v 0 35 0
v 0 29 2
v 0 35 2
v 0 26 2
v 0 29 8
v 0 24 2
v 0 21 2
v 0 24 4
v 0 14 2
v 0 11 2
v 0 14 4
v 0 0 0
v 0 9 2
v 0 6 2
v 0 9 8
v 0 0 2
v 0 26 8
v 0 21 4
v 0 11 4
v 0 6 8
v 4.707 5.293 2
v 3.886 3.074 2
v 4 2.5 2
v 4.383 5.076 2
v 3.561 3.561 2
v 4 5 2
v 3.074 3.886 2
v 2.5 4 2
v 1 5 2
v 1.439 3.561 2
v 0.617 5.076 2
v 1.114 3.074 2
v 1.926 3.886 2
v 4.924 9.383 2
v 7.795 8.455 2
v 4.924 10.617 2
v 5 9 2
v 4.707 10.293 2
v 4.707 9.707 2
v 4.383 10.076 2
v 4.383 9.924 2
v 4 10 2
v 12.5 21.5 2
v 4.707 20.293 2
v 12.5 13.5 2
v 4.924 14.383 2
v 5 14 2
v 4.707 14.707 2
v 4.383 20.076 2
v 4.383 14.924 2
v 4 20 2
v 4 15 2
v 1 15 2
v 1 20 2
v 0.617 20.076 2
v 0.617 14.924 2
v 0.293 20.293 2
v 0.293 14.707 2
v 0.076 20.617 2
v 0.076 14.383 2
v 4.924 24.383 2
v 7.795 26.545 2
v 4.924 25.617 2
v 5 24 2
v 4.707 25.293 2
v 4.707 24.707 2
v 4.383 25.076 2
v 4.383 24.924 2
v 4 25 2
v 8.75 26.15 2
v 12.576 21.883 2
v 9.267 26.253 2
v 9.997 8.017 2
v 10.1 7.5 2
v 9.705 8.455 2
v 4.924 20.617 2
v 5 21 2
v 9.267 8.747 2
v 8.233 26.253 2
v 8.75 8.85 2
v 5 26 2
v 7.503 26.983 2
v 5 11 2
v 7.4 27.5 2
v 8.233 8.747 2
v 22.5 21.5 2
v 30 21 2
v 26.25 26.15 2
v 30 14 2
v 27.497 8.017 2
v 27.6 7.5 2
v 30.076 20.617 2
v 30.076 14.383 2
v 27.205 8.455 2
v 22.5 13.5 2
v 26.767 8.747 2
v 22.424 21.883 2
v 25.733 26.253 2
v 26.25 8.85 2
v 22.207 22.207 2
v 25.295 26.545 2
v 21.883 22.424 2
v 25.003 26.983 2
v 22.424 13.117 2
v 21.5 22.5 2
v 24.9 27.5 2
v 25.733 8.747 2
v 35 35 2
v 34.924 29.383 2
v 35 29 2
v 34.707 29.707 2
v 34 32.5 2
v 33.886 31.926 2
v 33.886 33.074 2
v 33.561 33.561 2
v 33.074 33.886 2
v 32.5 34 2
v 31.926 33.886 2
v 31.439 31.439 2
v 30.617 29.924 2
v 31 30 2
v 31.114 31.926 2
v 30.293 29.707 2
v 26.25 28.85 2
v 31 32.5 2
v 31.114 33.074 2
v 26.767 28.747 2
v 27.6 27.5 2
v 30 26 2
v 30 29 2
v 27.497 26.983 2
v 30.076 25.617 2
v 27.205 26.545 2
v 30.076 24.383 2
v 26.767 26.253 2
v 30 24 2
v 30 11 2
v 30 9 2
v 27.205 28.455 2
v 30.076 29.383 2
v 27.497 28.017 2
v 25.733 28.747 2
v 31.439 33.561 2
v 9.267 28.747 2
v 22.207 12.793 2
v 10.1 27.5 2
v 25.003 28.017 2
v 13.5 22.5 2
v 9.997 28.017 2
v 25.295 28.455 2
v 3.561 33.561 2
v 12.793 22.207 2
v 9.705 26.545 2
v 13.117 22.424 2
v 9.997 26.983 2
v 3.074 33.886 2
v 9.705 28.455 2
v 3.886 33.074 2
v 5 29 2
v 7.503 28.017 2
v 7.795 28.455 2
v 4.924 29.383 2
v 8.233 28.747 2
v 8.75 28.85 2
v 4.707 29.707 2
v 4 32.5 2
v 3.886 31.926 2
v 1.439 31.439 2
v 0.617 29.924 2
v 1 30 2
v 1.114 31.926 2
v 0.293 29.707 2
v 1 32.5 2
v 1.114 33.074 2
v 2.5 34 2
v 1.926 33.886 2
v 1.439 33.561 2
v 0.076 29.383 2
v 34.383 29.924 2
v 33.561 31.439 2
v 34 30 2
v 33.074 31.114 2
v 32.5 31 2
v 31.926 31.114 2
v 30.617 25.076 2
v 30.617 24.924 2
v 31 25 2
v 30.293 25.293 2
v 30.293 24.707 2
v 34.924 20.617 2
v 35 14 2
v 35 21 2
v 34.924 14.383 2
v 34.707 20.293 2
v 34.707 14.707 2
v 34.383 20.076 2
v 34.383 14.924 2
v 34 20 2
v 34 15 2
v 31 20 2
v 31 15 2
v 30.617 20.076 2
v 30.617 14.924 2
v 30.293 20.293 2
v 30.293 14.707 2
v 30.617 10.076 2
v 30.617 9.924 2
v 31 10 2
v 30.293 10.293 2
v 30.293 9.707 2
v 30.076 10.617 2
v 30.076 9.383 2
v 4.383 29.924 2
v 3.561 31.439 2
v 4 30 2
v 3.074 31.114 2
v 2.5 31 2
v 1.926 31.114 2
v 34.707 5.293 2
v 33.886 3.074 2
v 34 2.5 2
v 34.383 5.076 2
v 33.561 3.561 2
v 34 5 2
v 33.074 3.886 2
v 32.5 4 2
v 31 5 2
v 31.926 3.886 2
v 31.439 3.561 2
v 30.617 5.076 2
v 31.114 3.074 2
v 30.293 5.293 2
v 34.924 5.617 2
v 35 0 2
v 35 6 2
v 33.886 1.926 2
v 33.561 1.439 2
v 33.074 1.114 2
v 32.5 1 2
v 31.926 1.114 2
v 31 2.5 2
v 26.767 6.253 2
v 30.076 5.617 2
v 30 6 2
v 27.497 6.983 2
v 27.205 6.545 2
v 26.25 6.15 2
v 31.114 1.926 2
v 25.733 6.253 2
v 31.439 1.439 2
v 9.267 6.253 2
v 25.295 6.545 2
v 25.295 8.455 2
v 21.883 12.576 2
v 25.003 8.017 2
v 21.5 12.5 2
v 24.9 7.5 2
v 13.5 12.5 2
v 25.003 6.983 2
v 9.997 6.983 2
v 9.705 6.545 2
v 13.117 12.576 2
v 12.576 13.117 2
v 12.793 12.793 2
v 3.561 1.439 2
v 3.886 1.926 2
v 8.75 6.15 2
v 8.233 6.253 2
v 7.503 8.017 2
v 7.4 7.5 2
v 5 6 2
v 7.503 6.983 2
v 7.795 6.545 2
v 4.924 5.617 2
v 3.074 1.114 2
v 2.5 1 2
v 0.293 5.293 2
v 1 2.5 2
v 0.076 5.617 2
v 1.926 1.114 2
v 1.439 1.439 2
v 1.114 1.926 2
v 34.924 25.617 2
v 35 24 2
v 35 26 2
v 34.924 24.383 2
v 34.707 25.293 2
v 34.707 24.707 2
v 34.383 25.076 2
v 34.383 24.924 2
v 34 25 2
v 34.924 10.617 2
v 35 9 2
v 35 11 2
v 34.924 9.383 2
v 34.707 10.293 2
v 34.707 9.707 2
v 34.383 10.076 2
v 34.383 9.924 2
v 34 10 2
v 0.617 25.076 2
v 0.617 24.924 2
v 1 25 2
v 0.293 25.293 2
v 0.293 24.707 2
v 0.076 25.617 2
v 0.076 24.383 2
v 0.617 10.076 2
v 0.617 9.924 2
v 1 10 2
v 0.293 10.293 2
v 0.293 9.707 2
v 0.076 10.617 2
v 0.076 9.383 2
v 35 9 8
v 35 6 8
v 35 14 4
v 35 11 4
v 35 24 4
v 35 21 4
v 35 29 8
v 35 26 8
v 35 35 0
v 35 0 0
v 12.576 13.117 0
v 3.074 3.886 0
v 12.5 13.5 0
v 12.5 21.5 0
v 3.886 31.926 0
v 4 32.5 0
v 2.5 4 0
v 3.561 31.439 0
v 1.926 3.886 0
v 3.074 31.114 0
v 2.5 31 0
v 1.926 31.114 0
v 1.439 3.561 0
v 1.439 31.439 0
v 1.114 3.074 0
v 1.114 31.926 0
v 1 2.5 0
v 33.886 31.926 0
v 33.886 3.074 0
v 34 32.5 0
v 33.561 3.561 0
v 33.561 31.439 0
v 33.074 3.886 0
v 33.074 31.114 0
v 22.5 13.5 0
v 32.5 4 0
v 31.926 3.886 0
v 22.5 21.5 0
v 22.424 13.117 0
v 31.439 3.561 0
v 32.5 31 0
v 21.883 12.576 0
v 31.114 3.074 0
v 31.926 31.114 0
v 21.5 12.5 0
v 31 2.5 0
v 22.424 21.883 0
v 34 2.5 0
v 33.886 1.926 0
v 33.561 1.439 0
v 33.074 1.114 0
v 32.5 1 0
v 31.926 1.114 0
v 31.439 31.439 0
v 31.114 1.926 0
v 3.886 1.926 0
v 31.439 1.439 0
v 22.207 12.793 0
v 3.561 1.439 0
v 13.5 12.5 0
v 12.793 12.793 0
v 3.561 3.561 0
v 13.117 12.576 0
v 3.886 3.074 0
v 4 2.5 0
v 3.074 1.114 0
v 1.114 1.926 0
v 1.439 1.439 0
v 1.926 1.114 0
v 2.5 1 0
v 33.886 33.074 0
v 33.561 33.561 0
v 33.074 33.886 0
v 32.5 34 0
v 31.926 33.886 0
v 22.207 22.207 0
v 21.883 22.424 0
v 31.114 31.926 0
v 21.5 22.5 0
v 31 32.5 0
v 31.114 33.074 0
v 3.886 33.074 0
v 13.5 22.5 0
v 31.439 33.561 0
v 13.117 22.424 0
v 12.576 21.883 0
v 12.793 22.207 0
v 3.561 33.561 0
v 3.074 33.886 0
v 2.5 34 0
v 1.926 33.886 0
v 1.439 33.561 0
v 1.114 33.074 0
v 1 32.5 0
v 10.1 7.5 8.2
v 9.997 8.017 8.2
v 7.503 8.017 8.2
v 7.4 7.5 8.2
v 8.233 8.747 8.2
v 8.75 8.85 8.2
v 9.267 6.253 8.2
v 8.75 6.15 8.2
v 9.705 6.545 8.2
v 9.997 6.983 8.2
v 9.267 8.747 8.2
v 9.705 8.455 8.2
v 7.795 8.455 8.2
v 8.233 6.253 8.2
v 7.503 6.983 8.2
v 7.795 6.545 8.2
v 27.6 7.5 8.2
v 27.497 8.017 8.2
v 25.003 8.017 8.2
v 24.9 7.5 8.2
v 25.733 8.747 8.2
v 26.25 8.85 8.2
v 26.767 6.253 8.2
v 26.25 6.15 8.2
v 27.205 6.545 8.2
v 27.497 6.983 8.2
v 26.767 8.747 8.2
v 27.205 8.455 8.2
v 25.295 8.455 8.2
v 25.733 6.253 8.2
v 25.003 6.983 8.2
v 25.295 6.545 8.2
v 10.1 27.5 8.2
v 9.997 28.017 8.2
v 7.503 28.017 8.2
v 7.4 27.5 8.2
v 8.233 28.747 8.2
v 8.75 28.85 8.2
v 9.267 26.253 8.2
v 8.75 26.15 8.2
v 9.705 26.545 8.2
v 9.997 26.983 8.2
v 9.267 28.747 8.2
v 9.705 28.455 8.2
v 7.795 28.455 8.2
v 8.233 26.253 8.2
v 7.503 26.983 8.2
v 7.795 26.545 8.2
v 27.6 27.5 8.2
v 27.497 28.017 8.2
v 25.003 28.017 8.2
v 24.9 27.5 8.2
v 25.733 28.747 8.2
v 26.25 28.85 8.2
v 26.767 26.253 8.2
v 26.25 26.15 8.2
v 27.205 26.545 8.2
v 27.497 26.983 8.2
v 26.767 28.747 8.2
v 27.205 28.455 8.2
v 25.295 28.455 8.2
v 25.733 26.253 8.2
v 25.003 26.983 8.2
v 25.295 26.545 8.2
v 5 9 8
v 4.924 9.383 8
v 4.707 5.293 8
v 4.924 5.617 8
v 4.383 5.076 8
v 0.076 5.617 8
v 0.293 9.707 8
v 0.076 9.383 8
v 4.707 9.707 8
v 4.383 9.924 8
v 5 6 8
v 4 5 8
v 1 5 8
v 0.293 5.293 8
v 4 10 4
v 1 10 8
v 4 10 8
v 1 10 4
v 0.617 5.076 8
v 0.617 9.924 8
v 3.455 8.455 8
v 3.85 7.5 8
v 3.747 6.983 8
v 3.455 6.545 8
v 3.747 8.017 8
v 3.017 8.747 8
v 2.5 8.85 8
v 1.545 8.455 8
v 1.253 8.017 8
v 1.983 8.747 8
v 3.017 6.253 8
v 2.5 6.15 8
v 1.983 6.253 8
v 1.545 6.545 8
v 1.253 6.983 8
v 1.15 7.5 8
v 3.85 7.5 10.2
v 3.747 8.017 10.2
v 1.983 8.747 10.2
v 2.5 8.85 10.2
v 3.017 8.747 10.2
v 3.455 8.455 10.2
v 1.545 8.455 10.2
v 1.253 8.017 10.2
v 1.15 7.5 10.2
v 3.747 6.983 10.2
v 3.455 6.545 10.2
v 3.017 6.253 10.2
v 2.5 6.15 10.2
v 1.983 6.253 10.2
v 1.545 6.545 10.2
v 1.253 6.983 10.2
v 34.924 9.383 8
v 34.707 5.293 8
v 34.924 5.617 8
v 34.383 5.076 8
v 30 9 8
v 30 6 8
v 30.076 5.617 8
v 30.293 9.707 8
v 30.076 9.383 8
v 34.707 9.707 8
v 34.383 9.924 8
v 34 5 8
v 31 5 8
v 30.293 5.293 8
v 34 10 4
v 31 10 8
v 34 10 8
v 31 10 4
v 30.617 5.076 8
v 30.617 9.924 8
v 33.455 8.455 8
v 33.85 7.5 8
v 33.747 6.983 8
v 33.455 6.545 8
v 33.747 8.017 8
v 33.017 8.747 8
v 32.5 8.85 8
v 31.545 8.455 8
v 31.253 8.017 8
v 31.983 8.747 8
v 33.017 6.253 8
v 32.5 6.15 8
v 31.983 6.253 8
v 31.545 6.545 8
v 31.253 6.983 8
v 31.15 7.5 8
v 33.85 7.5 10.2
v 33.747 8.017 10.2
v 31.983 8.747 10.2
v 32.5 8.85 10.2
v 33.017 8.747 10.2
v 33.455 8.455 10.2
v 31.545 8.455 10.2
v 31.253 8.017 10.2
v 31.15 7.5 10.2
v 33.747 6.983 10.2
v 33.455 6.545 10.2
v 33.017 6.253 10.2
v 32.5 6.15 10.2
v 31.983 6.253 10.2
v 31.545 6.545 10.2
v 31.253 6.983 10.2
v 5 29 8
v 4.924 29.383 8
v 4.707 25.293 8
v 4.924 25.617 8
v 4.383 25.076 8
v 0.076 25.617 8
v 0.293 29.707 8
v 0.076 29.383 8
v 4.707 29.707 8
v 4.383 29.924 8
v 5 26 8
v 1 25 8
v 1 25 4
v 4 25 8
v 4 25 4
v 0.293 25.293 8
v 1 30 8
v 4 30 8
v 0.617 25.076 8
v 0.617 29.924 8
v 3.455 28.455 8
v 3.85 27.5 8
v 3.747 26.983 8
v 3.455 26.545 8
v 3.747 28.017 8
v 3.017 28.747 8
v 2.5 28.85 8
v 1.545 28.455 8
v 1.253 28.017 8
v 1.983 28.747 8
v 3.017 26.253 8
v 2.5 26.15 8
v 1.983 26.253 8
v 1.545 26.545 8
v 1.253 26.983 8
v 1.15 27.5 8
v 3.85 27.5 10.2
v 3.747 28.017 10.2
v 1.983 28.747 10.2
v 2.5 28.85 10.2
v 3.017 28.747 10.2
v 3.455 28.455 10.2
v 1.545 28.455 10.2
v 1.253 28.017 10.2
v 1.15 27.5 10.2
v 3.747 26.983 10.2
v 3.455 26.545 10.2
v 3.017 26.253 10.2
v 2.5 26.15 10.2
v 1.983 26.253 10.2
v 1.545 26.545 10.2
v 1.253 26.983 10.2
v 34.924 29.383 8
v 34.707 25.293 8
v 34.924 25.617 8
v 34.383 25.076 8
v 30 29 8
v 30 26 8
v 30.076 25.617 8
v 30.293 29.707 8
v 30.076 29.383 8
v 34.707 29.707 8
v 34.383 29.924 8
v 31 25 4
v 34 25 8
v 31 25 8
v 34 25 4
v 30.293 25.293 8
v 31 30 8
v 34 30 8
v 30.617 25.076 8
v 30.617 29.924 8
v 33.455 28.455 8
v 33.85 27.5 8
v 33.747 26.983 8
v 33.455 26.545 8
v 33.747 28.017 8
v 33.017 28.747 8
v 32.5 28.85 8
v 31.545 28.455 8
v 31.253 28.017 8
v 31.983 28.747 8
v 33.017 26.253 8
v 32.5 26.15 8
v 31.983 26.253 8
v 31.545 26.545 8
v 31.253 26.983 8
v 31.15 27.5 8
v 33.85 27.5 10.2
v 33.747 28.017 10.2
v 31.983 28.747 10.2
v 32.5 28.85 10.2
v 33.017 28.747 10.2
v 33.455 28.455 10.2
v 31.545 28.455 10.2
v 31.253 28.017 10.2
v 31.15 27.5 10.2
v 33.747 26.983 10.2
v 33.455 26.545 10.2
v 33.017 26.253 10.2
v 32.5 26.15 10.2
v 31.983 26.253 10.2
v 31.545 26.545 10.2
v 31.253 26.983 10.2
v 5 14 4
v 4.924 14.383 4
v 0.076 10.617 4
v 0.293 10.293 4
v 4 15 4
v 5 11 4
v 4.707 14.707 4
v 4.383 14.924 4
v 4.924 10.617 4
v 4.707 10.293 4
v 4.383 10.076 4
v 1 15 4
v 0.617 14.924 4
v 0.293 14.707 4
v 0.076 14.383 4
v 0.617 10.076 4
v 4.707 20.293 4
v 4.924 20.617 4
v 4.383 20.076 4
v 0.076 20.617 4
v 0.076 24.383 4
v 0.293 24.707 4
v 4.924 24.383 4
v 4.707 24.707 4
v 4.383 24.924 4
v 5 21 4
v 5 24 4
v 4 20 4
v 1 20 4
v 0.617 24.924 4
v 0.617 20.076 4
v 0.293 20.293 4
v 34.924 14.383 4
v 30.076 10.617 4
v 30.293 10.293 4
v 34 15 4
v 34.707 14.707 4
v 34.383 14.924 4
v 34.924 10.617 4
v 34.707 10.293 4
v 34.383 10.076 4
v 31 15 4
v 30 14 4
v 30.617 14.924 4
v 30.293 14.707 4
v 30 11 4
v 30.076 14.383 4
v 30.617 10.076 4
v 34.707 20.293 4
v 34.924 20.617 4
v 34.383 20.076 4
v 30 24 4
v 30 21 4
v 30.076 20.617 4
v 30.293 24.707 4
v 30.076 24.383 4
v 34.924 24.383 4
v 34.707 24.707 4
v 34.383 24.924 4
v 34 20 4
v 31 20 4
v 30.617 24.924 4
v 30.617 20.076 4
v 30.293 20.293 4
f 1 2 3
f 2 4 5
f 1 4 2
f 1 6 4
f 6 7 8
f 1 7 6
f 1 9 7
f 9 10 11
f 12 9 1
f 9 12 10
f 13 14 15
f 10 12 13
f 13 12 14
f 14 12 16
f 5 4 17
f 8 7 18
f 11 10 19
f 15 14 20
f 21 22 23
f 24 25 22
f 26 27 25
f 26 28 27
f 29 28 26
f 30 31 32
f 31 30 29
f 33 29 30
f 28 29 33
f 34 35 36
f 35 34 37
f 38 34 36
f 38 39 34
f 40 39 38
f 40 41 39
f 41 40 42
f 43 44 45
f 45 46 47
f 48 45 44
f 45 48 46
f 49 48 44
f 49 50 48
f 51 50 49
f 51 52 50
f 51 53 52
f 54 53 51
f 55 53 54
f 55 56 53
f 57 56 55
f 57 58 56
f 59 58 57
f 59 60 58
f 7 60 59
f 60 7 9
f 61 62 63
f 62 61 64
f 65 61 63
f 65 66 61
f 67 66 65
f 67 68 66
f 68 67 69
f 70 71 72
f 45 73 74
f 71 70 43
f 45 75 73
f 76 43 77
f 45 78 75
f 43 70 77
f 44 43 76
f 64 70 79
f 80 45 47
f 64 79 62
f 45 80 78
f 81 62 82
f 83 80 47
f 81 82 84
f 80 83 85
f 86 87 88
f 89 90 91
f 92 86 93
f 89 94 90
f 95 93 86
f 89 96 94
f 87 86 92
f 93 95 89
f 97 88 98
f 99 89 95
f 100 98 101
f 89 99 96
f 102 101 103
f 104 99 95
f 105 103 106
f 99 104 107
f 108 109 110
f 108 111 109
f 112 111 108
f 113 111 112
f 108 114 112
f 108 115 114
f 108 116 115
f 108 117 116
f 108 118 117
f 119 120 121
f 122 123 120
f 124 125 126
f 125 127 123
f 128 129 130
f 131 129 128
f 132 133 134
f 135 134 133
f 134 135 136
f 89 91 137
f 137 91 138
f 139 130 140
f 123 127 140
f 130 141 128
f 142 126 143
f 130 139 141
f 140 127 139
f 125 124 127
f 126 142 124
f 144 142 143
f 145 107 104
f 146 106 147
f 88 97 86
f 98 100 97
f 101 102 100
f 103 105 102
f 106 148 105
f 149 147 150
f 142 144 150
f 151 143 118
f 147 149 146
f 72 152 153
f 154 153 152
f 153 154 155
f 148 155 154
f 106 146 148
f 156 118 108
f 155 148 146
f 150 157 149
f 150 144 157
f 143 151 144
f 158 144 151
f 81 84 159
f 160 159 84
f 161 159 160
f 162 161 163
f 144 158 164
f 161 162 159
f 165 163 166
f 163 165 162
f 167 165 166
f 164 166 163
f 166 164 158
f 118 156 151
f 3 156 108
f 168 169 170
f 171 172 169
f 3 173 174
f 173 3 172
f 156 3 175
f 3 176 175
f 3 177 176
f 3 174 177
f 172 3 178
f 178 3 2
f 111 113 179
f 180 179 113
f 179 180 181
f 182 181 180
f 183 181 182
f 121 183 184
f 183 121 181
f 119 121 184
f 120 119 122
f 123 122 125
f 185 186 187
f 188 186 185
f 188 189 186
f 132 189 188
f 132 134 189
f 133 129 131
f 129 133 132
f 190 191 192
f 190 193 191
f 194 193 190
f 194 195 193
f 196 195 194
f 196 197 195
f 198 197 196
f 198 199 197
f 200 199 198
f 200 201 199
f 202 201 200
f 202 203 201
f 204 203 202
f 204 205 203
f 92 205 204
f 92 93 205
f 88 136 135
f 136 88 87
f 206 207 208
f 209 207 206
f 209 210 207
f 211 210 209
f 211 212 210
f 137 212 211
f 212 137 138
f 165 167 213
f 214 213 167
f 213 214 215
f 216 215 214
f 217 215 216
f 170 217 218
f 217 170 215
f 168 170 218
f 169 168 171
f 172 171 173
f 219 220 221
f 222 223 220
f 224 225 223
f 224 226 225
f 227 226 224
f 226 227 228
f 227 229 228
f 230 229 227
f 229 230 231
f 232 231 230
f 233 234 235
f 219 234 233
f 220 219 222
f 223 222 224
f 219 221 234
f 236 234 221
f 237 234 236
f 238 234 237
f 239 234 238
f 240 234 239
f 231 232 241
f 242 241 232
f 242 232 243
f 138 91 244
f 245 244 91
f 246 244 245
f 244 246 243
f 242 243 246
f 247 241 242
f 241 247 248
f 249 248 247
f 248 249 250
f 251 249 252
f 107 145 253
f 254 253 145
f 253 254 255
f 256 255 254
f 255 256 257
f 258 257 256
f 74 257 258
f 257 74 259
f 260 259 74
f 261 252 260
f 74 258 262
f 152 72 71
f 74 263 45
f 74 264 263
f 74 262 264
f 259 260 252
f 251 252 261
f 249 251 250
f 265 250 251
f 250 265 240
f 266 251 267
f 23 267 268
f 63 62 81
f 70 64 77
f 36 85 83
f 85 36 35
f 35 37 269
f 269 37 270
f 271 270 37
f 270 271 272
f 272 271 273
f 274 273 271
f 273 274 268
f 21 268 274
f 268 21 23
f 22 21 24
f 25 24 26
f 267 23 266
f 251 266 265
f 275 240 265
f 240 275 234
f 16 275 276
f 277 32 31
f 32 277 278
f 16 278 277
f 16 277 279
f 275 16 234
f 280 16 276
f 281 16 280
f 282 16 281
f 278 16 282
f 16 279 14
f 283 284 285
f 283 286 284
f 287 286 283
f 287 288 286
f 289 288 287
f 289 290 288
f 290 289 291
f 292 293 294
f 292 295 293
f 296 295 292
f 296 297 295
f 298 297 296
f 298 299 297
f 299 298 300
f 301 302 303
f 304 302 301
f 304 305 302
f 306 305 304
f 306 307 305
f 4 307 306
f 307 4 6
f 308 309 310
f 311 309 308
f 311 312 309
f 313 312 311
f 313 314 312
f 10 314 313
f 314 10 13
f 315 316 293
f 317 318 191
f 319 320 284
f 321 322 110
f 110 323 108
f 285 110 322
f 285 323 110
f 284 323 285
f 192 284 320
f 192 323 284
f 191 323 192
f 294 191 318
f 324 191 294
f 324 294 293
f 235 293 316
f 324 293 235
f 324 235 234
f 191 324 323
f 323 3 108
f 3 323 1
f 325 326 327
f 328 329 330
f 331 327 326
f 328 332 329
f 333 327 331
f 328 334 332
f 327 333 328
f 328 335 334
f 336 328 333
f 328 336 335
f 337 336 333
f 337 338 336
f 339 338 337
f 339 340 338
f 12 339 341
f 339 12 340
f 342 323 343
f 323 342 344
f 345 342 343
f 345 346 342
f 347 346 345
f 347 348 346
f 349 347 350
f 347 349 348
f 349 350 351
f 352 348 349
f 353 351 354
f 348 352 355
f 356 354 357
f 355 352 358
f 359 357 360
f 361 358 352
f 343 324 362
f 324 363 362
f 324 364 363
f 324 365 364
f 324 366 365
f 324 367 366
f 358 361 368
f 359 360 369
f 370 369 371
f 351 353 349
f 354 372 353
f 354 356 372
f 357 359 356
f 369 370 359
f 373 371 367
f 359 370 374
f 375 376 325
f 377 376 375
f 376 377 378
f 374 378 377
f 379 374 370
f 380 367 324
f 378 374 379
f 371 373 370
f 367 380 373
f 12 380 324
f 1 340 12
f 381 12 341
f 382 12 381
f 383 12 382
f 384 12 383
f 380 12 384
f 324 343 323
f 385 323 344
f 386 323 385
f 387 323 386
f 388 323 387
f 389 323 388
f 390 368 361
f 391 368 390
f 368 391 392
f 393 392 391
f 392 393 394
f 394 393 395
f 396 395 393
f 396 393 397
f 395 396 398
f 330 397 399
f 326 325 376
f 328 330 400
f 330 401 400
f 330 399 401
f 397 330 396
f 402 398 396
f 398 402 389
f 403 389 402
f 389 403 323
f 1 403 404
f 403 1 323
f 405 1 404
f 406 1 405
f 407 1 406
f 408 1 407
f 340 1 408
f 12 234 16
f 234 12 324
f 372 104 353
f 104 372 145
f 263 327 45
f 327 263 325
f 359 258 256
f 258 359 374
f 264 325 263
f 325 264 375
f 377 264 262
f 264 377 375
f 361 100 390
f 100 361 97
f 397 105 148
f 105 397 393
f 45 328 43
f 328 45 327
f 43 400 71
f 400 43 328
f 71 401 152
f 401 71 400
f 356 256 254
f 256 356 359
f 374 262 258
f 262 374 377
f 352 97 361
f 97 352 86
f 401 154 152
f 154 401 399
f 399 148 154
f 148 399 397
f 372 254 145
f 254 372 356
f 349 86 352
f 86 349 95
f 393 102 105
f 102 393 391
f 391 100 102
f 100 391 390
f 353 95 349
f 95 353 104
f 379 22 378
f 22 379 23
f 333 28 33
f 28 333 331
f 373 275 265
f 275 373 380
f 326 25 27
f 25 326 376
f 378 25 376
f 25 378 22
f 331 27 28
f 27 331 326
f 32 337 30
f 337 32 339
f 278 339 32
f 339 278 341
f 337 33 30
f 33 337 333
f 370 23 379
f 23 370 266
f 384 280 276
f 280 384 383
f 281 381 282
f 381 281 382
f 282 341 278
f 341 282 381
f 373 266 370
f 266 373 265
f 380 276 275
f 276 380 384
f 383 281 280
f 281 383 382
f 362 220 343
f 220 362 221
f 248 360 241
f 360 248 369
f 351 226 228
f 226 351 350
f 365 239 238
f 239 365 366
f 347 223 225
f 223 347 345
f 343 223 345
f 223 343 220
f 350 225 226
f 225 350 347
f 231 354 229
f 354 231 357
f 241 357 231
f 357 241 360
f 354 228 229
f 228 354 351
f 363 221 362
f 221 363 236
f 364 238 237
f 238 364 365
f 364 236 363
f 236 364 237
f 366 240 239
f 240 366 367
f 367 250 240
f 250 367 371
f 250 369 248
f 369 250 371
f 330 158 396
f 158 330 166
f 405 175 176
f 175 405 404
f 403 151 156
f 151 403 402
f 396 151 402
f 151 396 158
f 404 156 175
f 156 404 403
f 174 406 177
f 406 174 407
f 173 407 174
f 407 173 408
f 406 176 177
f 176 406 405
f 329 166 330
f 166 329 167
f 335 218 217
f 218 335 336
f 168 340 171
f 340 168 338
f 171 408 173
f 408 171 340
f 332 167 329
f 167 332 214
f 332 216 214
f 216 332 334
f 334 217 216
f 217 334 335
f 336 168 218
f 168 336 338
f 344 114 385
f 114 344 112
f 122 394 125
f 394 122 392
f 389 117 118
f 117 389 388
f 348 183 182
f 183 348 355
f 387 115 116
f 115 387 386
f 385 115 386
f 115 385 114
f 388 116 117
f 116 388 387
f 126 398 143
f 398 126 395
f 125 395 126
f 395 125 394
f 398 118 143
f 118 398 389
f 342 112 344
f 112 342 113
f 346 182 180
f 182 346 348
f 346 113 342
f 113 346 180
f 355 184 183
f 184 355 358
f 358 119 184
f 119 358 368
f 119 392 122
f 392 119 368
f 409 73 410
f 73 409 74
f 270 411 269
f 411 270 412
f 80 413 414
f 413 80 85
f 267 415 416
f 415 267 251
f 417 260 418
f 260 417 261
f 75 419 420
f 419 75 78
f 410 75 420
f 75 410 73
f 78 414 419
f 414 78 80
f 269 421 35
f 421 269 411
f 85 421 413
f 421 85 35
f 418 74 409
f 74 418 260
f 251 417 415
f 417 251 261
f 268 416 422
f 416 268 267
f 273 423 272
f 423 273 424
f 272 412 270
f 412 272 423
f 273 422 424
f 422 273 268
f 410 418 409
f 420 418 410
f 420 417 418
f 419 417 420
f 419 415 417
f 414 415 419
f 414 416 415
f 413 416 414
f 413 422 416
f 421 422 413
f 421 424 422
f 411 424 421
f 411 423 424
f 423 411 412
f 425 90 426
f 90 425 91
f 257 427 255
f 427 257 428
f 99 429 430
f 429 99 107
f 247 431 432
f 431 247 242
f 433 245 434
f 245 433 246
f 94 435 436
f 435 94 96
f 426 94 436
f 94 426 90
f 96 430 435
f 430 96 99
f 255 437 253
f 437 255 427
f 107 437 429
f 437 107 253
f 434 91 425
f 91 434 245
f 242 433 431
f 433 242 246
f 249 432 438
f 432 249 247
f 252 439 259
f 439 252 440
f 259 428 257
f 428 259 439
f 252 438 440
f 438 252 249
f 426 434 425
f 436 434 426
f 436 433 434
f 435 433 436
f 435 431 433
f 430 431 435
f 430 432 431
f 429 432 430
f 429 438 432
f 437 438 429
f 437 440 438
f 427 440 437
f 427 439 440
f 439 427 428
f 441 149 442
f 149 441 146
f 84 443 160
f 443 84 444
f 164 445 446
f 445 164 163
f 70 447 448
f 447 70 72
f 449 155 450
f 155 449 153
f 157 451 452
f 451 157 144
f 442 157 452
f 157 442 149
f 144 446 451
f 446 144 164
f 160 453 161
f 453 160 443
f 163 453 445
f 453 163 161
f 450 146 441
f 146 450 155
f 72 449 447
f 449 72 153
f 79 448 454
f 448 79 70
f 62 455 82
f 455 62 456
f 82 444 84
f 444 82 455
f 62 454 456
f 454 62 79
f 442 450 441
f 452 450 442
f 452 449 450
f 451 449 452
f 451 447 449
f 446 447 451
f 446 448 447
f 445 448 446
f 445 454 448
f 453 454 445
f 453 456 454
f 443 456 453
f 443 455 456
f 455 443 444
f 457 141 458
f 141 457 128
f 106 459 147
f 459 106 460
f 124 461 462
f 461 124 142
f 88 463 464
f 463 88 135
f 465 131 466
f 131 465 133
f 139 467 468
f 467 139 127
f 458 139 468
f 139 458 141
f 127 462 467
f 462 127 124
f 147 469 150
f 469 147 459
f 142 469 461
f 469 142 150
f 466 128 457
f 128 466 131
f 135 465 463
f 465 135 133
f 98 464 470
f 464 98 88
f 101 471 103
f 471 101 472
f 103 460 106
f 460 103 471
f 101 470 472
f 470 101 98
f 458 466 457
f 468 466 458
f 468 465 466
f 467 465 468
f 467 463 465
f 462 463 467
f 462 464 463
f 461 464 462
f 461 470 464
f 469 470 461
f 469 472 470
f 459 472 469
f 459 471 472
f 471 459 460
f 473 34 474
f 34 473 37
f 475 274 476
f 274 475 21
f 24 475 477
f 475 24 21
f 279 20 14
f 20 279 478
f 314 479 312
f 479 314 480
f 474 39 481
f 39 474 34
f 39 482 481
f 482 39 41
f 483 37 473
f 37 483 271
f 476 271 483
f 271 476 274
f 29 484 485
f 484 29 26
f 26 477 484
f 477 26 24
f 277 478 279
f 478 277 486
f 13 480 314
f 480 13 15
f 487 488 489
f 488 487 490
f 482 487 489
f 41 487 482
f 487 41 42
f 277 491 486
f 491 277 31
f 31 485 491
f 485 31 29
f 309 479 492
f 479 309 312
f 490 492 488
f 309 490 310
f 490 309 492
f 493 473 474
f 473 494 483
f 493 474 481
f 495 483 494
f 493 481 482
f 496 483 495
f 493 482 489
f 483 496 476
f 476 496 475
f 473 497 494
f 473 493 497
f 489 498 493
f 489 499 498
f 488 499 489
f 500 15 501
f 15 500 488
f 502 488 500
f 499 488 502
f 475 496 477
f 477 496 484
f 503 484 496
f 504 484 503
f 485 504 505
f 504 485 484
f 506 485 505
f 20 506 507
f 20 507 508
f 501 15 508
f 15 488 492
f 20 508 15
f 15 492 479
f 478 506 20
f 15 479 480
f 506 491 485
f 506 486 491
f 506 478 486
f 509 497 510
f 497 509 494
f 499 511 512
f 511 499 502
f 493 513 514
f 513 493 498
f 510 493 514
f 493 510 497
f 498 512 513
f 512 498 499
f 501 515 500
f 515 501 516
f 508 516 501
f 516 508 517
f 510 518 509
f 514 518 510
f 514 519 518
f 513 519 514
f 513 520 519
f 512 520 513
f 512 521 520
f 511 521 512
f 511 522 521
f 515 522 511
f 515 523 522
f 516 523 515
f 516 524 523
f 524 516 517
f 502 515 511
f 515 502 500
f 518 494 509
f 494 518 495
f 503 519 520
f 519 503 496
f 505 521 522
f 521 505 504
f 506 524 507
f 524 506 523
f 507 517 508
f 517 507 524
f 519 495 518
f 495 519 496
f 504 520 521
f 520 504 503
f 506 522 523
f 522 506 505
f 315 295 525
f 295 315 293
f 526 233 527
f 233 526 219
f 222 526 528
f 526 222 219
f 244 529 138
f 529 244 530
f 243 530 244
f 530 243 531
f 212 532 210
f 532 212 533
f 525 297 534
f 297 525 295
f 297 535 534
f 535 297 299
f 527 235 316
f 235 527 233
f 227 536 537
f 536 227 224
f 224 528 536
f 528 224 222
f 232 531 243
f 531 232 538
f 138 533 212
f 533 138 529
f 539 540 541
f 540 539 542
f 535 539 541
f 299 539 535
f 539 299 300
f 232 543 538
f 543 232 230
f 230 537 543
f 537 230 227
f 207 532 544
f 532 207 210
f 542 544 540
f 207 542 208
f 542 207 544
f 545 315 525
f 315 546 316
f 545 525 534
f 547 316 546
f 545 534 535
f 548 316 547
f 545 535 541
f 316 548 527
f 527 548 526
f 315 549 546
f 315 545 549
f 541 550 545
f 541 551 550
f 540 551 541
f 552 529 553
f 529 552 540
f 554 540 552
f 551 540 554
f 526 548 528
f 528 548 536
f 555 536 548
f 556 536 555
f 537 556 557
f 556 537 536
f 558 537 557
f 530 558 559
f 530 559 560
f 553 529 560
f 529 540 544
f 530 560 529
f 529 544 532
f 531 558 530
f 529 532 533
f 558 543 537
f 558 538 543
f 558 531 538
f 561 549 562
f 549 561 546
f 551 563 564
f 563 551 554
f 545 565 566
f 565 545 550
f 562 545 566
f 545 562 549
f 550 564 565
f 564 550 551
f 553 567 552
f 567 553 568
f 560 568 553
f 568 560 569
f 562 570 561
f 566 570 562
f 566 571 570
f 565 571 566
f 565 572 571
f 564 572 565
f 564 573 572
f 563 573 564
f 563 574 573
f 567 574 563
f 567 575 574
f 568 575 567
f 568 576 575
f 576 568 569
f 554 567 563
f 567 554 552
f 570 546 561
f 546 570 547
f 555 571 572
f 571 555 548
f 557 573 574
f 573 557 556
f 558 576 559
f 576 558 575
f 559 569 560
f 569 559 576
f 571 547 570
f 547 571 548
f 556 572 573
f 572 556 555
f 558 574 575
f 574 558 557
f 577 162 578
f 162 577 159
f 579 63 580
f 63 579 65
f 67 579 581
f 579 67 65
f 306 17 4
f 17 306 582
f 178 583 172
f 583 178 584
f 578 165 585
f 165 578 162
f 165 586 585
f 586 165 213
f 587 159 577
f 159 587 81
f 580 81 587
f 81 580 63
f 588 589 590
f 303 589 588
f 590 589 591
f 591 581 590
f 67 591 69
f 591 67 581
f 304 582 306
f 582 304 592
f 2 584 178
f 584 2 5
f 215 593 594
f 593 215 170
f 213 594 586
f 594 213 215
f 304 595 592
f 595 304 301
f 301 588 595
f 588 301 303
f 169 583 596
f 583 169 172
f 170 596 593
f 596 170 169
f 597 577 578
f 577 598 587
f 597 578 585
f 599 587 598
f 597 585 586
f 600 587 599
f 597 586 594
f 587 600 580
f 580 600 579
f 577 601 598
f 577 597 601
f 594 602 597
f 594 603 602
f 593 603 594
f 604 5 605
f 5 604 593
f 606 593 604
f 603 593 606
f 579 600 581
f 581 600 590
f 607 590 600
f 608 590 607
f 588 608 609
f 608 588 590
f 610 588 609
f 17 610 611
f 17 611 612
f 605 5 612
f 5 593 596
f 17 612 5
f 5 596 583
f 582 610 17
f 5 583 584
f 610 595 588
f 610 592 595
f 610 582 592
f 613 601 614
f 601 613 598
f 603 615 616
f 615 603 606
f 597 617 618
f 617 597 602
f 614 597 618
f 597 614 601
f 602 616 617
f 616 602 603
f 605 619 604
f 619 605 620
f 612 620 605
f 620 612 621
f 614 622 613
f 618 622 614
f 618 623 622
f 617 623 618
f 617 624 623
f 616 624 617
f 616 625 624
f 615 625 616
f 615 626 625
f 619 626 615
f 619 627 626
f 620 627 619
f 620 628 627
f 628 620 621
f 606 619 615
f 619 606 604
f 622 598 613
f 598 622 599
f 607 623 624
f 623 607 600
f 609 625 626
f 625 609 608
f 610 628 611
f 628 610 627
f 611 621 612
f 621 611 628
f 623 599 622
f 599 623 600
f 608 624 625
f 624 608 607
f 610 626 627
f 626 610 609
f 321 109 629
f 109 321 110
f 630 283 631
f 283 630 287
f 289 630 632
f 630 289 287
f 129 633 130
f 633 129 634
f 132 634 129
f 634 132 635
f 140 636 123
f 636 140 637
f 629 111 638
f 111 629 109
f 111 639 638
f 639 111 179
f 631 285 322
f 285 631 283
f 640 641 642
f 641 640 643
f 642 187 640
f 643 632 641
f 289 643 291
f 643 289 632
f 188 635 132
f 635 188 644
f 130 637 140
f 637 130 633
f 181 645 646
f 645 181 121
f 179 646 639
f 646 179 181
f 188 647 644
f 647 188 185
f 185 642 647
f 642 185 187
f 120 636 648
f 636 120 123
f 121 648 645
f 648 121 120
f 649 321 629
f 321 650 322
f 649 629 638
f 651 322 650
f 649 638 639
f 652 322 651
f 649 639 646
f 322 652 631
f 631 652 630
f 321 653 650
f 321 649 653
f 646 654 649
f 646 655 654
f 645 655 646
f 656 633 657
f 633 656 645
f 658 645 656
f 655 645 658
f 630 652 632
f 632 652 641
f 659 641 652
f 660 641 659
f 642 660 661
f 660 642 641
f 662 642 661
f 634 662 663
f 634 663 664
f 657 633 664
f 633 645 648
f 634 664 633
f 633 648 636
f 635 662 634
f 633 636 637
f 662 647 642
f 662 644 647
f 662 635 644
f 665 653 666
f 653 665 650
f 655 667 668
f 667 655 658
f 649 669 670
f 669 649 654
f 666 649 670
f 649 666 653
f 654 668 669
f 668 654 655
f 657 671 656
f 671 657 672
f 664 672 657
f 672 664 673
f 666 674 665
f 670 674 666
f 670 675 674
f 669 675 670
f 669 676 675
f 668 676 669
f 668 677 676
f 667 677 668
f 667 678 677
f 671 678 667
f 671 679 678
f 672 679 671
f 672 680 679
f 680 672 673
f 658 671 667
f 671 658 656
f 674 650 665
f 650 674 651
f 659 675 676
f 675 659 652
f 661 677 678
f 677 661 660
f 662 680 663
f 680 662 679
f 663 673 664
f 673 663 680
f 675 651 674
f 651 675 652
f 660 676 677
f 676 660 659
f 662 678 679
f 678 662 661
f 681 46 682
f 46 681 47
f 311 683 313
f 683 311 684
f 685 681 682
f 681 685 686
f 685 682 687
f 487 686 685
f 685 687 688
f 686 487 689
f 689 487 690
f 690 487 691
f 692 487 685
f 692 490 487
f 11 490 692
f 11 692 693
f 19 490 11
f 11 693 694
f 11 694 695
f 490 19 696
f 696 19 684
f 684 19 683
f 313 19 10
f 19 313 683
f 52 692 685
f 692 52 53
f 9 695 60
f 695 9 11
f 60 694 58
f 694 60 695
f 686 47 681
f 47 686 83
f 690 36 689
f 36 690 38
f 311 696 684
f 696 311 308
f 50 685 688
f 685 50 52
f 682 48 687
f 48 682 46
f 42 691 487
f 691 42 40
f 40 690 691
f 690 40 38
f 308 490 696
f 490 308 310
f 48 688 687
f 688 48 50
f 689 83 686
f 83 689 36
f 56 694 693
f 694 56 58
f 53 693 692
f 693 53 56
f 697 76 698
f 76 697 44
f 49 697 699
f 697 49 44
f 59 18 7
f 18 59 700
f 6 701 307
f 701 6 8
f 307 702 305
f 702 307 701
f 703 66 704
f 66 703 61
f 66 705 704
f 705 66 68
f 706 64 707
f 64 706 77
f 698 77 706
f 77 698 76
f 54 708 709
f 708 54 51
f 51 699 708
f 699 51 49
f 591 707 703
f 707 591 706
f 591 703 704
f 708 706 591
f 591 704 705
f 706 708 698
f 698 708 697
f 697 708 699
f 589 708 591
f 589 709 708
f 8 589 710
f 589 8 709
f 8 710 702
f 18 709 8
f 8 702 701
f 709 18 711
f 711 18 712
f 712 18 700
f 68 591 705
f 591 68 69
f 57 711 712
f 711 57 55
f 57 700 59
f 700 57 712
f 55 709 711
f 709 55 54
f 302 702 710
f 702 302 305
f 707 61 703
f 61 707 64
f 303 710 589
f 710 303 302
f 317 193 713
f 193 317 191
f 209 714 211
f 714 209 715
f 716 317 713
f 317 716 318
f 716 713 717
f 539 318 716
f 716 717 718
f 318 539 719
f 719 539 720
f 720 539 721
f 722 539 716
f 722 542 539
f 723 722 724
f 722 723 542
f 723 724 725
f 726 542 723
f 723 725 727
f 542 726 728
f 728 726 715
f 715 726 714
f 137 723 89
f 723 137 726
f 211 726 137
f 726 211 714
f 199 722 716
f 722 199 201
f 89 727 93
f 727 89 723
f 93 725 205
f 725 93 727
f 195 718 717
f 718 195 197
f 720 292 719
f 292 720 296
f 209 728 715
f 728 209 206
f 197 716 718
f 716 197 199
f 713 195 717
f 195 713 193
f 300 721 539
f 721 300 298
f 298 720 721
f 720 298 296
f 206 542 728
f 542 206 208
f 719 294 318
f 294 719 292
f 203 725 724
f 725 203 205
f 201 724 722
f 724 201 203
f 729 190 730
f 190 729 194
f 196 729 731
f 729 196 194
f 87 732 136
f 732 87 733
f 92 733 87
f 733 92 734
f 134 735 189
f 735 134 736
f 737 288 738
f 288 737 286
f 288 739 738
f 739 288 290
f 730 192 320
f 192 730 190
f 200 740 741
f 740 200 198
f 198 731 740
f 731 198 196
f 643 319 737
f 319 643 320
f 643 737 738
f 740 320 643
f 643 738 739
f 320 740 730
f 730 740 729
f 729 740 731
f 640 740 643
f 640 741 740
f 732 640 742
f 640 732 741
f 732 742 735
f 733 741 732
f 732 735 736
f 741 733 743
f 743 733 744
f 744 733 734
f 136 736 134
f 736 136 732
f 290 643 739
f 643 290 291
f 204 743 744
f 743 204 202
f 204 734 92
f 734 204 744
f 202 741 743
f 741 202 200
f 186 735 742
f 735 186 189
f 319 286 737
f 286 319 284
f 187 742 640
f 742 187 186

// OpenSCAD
// file: basics.scad
// basics 1

$fn = 16;

cellRadius = 1.0;

cellSize = 5.0;

layerHeight = 2.0;

pinOffset = 0.15;

module cellCorner(height = layerHeight) {
    cylinder(h = height, r = cellRadius);
}

module cell(height = layerHeight) {
    translate([0, 0, 0]) {
        hull() {
            translate([cellRadius,            cellRadius, 0])            cellCorner(height);
            translate([cellSize - cellRadius, cellRadius, 0])            cellCorner(height);
            translate([cellRadius,            cellSize - cellRadius, 0]) cellCorner(height);
            translate([cellSize - cellRadius, cellSize - cellRadius, 0]) cellCorner(height);
        }
    }
}

module pin(pinOffset = 0) {
    cylinder(h = layerHeight + 0.2, r = cellRadius * 1.5 - pinOffset);
}
// main file
// einfachen Schaltglied Festblech 2

$fn = 16;

cellRadius = 1.0;

cellSize = 5.0;

layerHeight = 2.0;

blechWidth  = cellSize * 7;
blechLength = cellSize * 7;

cellCenter = cellSize / 2;

holeOffset = 0.15;

pinXOffset = 1.75;
pinYOffset = 1.5;


use <basics.scad>

module base() {
  difference() {
    // base
    translate([0,0,0]) cube([blechWidth, blechLength, layerHeight]);
    // center hole
    translate([cellSize * 2.5, cellSize * 2.5, -0.1]) quadCell();
    
    // holes for base pins
    translate([cellSize / 2             , cellSize / 2              , -0.1]) pin();
    translate([blechWidth - cellSize / 2, cellSize / 2              , -0.1]) pin();
    translate([cellSize / 2             , blechLength - cellSize / 2, -0.1]) pin();
    translate([blechWidth - cellSize / 2, blechLength - cellSize / 2, -0.1]) pin(); 
  }
}

module quadCell() {
    hull() {
        translate([0       , 0       , 0]) cell(layerHeight + 0.2);
        translate([cellSize, 0       , 0]) cell(layerHeight + 0.2);
        translate([0       , cellSize, 0]) cell(layerHeight + 0.2);
        translate([cellSize, cellSize, 0]) cell(layerHeight + 0.2);
    }
}

// guides
module guidePillar() {
    translate([0, 0, 0])               cell();
    translate([0, 0, layerHeight])     cell();
    translate([0, 0, layerHeight * 2]) cell();
    translate([cellSize / 2, cellSize / 2, layerHeight * 3]) pin(holeOffset);    
}

module pin3() {
    translate([0,0,0])               pin(holeOffset);
    translate([0,0,layerHeight])     pin(holeOffset);
    translate([0,0,layerHeight * 2]) pin(holeOffset);    
}

translate([0,0,0]) base();

// pins / supports
translate([cellSize * pinXOffset             , cellSize * pinYOffset             , layerHeight]) {
    pin3();
}
translate([blechWidth - cellSize * pinXOffset, cellSize * pinYOffset             , layerHeight]) {
    pin3();
}
translate([cellSize * pinXOffset             , blechWidth - cellSize * pinYOffset, layerHeight]) {
    pin3();
}
translate([blechWidth - cellSize * pinXOffset, blechWidth - cellSize * pinYOffset, layerHeight]) {
    pin3();
}

translate([0, 0, layerHeight]) {
    translate([0, cellSize, 0]) {
        guidePillar();
    }
    translate([blechWidth - cellSize, cellSize, 0]) {    
        guidePillar();
    } 
    translate([0, blechLength - cellSize * 2, 0]) { 
        guidePillar();
    }
    translate([blechWidth - cellSize, blechLength - cellSize * 2, 0]) {
        guidePillar();
    }
}

// d-blech support
translate([0, cellSize * 2, layerHeight]) cell();
translate([0, cellSize * 4, layerHeight]) cell();
translate([blechLength - cellSize, cellSize * 2, layerHeight]) cell();
translate([blechLength - cellSize, cellSize * 4, layerHeight]) cell();
